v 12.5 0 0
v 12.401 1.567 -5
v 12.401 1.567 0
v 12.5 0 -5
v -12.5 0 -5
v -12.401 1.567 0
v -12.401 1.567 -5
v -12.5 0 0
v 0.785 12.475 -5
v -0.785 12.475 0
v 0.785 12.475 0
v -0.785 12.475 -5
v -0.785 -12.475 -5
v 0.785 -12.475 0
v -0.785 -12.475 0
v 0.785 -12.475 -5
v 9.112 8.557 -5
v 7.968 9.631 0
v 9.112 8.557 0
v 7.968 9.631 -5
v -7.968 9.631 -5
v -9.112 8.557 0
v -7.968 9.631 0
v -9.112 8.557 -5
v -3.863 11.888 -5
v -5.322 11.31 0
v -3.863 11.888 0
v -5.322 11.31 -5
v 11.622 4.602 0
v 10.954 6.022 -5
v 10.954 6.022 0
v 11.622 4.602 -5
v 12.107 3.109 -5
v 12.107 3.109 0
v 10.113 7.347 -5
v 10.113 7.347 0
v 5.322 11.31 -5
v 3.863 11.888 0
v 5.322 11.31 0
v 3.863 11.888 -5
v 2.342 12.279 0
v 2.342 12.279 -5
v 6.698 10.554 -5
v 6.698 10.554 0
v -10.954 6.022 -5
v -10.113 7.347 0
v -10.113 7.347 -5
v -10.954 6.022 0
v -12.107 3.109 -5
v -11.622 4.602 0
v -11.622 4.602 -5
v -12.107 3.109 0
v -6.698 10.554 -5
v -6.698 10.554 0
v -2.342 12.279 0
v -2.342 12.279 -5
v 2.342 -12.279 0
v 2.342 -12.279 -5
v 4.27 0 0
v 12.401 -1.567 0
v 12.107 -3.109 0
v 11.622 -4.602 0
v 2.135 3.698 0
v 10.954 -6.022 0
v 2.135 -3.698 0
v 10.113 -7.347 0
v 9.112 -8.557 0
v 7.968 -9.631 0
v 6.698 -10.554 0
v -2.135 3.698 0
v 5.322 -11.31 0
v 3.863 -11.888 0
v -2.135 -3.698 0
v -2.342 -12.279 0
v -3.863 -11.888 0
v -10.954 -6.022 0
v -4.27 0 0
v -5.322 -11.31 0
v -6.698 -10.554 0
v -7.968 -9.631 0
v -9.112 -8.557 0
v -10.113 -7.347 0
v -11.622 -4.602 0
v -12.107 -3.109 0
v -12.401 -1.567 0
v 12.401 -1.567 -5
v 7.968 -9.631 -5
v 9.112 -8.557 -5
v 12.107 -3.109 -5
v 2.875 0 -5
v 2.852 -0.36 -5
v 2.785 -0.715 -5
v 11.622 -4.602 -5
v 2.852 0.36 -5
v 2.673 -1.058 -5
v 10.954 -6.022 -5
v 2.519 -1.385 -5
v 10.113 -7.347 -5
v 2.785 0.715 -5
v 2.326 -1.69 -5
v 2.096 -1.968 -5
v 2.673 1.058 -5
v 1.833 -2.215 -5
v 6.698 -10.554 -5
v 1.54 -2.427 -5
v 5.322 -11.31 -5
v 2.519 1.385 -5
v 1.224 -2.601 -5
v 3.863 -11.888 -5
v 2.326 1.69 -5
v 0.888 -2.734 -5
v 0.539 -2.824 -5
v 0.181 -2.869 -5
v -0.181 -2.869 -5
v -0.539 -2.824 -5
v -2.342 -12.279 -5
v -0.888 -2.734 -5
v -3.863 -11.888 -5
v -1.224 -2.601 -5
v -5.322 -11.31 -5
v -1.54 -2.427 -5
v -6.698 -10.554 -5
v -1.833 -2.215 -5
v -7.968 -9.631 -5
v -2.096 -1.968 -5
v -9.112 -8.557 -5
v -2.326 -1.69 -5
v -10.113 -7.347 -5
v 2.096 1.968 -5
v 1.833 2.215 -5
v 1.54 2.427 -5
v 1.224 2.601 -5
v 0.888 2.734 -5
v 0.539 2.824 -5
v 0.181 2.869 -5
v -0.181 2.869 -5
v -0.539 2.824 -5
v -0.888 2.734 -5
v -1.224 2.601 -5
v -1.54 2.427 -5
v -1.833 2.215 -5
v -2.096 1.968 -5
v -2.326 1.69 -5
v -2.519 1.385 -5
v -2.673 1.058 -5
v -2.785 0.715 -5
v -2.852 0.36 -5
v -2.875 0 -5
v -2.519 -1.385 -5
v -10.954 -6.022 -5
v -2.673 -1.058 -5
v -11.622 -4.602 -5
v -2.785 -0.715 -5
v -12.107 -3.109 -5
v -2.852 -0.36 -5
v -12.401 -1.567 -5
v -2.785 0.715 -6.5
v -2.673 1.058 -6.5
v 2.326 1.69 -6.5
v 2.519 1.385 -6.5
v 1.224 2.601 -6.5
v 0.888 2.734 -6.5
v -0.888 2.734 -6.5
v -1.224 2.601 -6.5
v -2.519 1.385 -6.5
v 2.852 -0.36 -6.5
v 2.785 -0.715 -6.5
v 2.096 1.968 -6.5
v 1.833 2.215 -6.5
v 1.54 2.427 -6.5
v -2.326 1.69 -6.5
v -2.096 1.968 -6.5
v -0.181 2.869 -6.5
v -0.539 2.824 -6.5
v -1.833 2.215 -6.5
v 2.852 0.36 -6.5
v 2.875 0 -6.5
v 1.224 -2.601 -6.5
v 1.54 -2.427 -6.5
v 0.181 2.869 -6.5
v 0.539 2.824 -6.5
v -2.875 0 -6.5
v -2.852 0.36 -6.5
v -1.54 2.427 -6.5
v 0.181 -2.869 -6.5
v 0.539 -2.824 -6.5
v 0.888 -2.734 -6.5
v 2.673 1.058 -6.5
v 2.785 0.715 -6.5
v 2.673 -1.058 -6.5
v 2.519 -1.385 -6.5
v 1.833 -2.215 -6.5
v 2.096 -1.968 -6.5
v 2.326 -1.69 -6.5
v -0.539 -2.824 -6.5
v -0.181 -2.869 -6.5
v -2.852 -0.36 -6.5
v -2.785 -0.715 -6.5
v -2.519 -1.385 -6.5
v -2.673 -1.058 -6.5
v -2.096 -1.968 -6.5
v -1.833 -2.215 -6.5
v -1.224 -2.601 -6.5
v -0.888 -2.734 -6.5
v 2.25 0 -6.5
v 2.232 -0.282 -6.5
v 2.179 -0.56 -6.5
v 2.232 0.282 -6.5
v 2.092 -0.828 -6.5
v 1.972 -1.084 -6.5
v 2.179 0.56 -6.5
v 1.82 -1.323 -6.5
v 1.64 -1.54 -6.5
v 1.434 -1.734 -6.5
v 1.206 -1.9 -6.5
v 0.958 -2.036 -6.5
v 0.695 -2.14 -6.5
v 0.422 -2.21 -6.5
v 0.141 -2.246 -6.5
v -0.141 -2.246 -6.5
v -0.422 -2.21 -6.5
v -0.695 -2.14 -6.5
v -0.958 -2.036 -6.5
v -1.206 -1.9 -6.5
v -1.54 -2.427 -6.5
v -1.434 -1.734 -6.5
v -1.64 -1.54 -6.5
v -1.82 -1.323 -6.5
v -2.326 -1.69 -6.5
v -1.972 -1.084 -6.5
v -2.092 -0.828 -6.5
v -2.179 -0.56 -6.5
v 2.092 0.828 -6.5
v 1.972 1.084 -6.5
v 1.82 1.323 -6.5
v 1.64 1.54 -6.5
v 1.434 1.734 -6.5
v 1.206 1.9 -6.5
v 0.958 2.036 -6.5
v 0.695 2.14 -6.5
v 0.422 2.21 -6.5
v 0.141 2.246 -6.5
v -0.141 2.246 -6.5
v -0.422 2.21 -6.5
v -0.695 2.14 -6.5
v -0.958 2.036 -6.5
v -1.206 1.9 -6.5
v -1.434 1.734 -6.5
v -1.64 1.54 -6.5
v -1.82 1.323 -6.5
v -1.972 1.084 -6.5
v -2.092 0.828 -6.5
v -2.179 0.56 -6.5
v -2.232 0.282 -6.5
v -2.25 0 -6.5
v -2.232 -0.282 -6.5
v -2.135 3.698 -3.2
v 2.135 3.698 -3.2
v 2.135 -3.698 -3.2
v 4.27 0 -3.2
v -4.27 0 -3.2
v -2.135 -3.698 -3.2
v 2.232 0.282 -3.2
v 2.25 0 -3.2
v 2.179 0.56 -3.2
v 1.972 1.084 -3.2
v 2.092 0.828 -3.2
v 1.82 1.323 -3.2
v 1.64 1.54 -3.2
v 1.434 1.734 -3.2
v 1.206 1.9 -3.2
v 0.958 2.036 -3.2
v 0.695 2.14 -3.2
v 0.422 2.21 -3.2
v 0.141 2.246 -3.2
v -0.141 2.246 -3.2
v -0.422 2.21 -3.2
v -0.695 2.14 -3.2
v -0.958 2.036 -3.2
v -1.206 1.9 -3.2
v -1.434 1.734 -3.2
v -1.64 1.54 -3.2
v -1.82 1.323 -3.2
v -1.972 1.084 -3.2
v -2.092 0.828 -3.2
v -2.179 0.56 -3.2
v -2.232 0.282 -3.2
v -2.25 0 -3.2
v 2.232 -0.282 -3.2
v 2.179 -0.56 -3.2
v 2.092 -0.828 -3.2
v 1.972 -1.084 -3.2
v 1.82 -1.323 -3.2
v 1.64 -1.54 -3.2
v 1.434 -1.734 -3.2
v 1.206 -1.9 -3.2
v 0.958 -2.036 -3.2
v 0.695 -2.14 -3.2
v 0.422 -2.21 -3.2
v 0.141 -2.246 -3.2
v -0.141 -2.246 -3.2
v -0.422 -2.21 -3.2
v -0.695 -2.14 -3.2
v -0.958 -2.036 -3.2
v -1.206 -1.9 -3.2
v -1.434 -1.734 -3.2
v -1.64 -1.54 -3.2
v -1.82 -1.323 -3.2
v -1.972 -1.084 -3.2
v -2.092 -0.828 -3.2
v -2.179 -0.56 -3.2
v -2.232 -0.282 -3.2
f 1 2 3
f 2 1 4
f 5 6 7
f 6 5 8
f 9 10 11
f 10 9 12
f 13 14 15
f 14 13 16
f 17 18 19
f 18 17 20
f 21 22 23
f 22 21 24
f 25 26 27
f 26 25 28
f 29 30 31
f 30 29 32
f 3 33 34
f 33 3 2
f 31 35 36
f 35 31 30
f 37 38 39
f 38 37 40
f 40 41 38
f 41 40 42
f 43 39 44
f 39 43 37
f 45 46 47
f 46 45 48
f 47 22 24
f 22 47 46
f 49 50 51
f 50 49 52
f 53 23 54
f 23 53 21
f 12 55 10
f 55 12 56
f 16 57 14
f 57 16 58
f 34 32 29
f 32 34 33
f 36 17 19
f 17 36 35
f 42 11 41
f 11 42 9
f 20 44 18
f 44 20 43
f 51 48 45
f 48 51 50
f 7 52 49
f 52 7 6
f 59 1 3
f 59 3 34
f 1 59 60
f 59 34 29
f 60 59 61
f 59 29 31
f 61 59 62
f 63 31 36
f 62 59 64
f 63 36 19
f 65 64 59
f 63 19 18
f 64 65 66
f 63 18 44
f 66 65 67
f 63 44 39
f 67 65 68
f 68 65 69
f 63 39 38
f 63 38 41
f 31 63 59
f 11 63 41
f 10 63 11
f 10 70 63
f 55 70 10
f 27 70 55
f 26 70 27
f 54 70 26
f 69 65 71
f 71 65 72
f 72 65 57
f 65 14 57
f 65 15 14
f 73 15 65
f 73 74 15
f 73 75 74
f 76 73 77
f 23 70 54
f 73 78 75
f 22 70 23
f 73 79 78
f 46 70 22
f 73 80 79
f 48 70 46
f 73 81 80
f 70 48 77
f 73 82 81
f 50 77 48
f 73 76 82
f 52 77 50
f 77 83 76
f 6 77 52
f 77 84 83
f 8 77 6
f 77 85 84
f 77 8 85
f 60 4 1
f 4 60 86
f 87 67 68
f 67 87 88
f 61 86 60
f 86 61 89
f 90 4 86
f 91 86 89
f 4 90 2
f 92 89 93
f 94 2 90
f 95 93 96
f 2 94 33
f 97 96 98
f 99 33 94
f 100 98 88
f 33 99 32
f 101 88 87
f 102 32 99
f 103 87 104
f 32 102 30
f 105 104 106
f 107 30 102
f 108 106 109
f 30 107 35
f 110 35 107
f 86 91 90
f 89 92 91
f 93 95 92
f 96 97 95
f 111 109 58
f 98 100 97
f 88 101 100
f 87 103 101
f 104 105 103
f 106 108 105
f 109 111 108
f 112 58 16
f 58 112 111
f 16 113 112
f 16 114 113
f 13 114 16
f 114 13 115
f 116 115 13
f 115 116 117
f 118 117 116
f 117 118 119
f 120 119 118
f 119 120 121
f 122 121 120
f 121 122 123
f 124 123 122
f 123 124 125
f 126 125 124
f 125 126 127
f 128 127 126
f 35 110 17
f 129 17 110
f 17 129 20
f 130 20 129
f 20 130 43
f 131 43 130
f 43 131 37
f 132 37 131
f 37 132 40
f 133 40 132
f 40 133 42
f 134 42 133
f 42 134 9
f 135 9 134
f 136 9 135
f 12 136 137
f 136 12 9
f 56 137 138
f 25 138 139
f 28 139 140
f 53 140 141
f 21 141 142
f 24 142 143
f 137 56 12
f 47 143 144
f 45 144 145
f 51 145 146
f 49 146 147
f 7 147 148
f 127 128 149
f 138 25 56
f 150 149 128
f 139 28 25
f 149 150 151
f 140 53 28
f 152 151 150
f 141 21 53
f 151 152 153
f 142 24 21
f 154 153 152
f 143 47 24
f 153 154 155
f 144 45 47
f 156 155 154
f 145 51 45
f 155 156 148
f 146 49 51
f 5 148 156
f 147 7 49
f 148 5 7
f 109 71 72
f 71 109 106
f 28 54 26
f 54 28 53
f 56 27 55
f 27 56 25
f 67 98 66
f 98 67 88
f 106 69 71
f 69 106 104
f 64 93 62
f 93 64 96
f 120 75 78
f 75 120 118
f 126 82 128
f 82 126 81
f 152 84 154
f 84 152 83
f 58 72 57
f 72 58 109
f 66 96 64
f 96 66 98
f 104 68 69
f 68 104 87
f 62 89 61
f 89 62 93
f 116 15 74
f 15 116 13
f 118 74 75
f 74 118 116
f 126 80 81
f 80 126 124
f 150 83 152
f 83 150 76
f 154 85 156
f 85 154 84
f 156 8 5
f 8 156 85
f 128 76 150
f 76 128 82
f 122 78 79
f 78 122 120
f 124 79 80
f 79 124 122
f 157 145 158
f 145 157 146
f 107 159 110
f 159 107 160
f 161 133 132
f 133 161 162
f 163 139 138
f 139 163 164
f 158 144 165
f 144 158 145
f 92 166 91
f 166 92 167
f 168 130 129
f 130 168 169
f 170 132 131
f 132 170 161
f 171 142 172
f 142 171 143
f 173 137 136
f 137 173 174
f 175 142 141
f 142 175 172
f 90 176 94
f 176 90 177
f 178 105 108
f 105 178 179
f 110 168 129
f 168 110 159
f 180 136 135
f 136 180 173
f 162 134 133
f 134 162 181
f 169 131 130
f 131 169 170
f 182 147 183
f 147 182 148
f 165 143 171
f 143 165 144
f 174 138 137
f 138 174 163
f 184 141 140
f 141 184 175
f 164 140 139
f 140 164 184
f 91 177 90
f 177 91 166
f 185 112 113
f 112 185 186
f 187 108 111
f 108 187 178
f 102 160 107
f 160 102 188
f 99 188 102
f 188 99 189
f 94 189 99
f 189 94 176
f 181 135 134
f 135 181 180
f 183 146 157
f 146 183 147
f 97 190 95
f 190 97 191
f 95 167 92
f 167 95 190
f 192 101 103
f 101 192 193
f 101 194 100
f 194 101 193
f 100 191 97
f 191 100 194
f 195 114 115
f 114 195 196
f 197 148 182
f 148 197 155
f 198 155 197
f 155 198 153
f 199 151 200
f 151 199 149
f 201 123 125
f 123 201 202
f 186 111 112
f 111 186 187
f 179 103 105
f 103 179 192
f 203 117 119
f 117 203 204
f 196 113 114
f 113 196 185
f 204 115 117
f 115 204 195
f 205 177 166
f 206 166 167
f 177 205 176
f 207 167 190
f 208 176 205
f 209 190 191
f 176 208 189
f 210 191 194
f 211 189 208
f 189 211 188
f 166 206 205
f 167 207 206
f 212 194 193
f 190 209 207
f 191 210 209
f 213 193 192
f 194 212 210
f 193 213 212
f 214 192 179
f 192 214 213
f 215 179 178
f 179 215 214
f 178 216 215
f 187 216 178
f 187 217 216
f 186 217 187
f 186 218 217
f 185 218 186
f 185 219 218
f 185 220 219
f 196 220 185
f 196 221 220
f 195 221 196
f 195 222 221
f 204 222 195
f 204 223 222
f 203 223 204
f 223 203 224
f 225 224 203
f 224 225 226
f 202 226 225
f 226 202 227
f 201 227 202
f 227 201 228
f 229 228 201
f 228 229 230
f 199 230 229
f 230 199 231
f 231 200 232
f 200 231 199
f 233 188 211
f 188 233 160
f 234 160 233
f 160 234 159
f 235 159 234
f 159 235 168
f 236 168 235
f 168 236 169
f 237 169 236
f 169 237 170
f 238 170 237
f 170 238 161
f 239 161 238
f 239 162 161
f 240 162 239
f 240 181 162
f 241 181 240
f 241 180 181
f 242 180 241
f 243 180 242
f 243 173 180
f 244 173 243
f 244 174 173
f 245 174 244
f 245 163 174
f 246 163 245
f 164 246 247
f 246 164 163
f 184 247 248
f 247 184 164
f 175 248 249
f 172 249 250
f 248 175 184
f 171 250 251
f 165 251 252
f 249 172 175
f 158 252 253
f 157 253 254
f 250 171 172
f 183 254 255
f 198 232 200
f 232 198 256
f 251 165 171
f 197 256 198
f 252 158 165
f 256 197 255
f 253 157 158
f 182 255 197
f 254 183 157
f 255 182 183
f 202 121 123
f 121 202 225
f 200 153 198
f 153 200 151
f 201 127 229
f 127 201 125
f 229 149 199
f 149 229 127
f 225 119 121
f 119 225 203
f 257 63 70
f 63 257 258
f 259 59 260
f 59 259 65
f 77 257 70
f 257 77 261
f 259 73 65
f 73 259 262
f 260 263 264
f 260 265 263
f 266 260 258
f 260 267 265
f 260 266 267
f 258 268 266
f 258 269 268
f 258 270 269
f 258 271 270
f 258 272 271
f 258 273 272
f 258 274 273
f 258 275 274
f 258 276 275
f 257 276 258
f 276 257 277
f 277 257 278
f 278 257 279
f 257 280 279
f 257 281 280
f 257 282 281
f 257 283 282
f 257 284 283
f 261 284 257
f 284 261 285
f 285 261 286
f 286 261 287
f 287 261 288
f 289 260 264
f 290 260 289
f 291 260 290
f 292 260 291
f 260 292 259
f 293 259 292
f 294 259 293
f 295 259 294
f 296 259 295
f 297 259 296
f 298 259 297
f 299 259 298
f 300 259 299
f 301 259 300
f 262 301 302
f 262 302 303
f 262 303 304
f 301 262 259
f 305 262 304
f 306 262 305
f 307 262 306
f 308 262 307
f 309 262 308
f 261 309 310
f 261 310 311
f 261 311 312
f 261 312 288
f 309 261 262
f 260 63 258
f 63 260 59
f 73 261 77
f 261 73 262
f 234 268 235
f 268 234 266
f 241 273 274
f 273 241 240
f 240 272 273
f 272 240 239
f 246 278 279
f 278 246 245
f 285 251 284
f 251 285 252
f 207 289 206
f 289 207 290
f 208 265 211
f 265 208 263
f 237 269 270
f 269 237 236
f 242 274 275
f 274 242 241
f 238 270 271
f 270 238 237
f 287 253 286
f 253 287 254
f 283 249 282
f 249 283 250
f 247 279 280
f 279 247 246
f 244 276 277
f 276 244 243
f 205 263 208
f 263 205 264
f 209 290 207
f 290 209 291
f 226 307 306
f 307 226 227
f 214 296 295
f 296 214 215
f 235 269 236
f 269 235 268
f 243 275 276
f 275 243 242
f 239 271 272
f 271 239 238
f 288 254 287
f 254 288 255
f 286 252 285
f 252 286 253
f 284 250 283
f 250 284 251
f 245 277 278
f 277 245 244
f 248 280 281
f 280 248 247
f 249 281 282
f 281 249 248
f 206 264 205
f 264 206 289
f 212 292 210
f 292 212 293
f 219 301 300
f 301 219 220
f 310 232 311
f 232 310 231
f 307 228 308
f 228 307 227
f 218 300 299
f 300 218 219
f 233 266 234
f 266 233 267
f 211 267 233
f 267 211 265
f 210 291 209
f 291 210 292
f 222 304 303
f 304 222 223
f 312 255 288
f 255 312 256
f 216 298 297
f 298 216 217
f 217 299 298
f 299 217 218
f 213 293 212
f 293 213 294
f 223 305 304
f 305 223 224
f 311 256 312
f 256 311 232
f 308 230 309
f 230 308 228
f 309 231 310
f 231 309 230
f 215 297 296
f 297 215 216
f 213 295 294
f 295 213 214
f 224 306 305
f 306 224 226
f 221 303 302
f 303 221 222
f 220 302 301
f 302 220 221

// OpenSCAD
$fn = 50;


difference() {
	union() {
		translate(v = [0, 0, -5.0000000000]) {
			cylinder(h = 5.0000000000, r = 12.5000000000);
		}
		#translate(v = [0, 0, -6.5000000000]) {
			cylinder(h = 6.5000000000, r = 2.8750000000);
		}
	}
	union() {
		translate(v = [0, 0, 0]) {
			rotate(a = [0, 0, 0]) {
				difference() {
					union() {
						translate(v = [0, 0, -3.2000000000]) {
							linear_extrude(height = 3.2000000000) {
								polygon(points = [[4.2698000000, 0.0000000000], [2.1349000000, 3.6977552691], [-2.1349000000, 3.6977552691], [-4.2698000000, 0.0000000000], [-2.1349000000, -3.6977552691], [2.1349000000, -3.6977552691]]);
							}
						}
					}
					union();
				}
			}
		}
		#translate(v = [0, 0, -100.0000000000]) {
			cylinder(h = 200, r = 2.2500000000);
		}
	}
}
